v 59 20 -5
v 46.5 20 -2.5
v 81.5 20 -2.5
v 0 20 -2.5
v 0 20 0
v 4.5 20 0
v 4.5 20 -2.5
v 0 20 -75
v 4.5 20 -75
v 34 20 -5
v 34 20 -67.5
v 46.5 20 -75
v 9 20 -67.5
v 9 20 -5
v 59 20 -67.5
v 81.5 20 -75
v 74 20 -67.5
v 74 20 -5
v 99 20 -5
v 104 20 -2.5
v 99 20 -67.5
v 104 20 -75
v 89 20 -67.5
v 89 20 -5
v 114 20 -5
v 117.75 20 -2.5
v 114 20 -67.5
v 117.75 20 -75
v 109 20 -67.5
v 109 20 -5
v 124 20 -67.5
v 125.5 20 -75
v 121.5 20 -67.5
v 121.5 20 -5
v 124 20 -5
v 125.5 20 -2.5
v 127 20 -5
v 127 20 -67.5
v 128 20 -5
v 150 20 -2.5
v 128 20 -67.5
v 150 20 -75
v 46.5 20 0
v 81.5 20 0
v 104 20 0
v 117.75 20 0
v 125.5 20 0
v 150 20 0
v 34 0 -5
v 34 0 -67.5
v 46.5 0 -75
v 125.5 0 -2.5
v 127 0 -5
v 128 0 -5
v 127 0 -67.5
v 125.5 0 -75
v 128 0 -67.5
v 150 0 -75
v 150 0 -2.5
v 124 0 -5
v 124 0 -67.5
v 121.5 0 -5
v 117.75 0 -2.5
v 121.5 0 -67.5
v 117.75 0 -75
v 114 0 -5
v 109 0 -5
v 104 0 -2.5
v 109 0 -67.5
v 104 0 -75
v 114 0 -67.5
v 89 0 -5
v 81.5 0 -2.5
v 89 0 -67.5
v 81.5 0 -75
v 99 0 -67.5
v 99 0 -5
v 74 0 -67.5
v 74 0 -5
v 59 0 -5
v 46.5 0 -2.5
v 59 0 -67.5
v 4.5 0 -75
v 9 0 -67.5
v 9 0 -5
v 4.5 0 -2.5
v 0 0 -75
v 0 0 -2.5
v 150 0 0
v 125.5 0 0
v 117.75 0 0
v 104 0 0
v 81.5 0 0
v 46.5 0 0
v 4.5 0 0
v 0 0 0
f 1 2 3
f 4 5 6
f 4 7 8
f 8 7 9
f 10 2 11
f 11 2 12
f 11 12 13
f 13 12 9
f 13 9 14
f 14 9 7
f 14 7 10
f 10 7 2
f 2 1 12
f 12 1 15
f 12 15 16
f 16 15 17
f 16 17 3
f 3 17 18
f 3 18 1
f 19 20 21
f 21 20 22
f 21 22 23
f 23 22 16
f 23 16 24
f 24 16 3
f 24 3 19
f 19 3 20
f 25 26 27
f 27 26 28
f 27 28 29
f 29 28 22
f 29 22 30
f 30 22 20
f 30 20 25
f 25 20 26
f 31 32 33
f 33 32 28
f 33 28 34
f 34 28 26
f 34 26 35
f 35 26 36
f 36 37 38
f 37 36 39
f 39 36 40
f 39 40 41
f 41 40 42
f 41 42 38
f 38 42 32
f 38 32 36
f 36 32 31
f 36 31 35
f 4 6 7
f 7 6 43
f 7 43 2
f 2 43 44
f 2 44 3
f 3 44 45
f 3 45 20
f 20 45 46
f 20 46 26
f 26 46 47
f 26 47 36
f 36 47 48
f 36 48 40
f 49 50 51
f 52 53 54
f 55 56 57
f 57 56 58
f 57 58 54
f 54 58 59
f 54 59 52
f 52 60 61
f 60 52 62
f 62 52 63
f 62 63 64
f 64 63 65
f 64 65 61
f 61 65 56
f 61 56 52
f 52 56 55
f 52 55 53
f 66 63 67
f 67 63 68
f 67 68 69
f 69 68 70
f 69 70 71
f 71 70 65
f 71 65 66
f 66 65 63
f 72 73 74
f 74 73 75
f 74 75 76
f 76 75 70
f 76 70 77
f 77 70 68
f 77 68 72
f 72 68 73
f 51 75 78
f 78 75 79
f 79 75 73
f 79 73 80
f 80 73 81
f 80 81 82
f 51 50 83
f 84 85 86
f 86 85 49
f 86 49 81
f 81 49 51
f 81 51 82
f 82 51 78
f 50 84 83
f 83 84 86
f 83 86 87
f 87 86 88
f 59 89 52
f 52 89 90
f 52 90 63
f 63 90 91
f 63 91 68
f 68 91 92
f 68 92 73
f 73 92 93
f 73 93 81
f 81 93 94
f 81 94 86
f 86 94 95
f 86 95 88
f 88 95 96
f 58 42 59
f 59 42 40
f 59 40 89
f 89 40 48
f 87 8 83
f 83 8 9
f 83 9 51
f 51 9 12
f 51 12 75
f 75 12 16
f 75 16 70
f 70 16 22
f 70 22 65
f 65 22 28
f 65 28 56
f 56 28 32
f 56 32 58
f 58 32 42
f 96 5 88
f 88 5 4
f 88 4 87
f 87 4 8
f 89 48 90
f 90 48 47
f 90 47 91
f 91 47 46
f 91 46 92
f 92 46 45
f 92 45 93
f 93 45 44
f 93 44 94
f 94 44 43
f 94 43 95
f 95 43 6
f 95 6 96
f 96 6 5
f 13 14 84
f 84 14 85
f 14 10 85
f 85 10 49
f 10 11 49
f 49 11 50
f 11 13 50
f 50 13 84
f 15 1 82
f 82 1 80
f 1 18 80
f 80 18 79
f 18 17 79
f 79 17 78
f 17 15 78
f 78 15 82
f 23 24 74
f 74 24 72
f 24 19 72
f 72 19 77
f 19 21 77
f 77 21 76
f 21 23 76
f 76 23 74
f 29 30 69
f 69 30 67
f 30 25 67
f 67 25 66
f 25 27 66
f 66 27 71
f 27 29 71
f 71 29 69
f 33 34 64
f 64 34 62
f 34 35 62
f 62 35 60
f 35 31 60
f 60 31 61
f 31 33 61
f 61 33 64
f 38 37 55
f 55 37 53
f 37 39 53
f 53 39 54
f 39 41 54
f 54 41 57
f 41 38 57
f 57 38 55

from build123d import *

# Parameters (mm, degrees)
SKETCH2_W           = 150
SKETCH2_H           = 75
SKETCH2_W_2         = 25
SKETCH2_H_2         = 62.5
SKETCH2_W_3         = 15
SKETCH2_W_4         = 10
SKETCH2_W_5         = 5
SKETCH2_W_6         = 2.5
SKETCH2_W_7         = 1
BOSS_EXTRUDE1_DEPTH = 20


with BuildPart() as part:
    # Sketch2 → Boss-Extrude1 (new body)
    with BuildSketch(Plane(origin=(0, 0, 0), x_dir=(1, 0, 0), z_dir=(0, 1, 0))):
        with Locations((75, 37.5)):
            Rectangle(SKETCH2_W, SKETCH2_H)
        with Locations((21.5, 36.25)):
            Rectangle(SKETCH2_W_2, SKETCH2_H_2, mode=Mode.SUBTRACT)
        with Locations((66.5, 36.25)):
            Rectangle(SKETCH2_W_3, SKETCH2_H_2, mode=Mode.SUBTRACT)
        with Locations((94, 36.25)):
            Rectangle(SKETCH2_W_4, SKETCH2_H_2, mode=Mode.SUBTRACT)
        with Locations((111.5, 36.25)):
            Rectangle(SKETCH2_W_5, SKETCH2_H_2, mode=Mode.SUBTRACT)
        with Locations((122.75, 36.25)):
            Rectangle(SKETCH2_W_6, SKETCH2_H_2, mode=Mode.SUBTRACT)
        with Locations((127.5, 36.25)):
            Rectangle(SKETCH2_W_7, SKETCH2_H_2, mode=Mode.SUBTRACT)
    extrude(amount=BOSS_EXTRUDE1_DEPTH)


solid = part.part
